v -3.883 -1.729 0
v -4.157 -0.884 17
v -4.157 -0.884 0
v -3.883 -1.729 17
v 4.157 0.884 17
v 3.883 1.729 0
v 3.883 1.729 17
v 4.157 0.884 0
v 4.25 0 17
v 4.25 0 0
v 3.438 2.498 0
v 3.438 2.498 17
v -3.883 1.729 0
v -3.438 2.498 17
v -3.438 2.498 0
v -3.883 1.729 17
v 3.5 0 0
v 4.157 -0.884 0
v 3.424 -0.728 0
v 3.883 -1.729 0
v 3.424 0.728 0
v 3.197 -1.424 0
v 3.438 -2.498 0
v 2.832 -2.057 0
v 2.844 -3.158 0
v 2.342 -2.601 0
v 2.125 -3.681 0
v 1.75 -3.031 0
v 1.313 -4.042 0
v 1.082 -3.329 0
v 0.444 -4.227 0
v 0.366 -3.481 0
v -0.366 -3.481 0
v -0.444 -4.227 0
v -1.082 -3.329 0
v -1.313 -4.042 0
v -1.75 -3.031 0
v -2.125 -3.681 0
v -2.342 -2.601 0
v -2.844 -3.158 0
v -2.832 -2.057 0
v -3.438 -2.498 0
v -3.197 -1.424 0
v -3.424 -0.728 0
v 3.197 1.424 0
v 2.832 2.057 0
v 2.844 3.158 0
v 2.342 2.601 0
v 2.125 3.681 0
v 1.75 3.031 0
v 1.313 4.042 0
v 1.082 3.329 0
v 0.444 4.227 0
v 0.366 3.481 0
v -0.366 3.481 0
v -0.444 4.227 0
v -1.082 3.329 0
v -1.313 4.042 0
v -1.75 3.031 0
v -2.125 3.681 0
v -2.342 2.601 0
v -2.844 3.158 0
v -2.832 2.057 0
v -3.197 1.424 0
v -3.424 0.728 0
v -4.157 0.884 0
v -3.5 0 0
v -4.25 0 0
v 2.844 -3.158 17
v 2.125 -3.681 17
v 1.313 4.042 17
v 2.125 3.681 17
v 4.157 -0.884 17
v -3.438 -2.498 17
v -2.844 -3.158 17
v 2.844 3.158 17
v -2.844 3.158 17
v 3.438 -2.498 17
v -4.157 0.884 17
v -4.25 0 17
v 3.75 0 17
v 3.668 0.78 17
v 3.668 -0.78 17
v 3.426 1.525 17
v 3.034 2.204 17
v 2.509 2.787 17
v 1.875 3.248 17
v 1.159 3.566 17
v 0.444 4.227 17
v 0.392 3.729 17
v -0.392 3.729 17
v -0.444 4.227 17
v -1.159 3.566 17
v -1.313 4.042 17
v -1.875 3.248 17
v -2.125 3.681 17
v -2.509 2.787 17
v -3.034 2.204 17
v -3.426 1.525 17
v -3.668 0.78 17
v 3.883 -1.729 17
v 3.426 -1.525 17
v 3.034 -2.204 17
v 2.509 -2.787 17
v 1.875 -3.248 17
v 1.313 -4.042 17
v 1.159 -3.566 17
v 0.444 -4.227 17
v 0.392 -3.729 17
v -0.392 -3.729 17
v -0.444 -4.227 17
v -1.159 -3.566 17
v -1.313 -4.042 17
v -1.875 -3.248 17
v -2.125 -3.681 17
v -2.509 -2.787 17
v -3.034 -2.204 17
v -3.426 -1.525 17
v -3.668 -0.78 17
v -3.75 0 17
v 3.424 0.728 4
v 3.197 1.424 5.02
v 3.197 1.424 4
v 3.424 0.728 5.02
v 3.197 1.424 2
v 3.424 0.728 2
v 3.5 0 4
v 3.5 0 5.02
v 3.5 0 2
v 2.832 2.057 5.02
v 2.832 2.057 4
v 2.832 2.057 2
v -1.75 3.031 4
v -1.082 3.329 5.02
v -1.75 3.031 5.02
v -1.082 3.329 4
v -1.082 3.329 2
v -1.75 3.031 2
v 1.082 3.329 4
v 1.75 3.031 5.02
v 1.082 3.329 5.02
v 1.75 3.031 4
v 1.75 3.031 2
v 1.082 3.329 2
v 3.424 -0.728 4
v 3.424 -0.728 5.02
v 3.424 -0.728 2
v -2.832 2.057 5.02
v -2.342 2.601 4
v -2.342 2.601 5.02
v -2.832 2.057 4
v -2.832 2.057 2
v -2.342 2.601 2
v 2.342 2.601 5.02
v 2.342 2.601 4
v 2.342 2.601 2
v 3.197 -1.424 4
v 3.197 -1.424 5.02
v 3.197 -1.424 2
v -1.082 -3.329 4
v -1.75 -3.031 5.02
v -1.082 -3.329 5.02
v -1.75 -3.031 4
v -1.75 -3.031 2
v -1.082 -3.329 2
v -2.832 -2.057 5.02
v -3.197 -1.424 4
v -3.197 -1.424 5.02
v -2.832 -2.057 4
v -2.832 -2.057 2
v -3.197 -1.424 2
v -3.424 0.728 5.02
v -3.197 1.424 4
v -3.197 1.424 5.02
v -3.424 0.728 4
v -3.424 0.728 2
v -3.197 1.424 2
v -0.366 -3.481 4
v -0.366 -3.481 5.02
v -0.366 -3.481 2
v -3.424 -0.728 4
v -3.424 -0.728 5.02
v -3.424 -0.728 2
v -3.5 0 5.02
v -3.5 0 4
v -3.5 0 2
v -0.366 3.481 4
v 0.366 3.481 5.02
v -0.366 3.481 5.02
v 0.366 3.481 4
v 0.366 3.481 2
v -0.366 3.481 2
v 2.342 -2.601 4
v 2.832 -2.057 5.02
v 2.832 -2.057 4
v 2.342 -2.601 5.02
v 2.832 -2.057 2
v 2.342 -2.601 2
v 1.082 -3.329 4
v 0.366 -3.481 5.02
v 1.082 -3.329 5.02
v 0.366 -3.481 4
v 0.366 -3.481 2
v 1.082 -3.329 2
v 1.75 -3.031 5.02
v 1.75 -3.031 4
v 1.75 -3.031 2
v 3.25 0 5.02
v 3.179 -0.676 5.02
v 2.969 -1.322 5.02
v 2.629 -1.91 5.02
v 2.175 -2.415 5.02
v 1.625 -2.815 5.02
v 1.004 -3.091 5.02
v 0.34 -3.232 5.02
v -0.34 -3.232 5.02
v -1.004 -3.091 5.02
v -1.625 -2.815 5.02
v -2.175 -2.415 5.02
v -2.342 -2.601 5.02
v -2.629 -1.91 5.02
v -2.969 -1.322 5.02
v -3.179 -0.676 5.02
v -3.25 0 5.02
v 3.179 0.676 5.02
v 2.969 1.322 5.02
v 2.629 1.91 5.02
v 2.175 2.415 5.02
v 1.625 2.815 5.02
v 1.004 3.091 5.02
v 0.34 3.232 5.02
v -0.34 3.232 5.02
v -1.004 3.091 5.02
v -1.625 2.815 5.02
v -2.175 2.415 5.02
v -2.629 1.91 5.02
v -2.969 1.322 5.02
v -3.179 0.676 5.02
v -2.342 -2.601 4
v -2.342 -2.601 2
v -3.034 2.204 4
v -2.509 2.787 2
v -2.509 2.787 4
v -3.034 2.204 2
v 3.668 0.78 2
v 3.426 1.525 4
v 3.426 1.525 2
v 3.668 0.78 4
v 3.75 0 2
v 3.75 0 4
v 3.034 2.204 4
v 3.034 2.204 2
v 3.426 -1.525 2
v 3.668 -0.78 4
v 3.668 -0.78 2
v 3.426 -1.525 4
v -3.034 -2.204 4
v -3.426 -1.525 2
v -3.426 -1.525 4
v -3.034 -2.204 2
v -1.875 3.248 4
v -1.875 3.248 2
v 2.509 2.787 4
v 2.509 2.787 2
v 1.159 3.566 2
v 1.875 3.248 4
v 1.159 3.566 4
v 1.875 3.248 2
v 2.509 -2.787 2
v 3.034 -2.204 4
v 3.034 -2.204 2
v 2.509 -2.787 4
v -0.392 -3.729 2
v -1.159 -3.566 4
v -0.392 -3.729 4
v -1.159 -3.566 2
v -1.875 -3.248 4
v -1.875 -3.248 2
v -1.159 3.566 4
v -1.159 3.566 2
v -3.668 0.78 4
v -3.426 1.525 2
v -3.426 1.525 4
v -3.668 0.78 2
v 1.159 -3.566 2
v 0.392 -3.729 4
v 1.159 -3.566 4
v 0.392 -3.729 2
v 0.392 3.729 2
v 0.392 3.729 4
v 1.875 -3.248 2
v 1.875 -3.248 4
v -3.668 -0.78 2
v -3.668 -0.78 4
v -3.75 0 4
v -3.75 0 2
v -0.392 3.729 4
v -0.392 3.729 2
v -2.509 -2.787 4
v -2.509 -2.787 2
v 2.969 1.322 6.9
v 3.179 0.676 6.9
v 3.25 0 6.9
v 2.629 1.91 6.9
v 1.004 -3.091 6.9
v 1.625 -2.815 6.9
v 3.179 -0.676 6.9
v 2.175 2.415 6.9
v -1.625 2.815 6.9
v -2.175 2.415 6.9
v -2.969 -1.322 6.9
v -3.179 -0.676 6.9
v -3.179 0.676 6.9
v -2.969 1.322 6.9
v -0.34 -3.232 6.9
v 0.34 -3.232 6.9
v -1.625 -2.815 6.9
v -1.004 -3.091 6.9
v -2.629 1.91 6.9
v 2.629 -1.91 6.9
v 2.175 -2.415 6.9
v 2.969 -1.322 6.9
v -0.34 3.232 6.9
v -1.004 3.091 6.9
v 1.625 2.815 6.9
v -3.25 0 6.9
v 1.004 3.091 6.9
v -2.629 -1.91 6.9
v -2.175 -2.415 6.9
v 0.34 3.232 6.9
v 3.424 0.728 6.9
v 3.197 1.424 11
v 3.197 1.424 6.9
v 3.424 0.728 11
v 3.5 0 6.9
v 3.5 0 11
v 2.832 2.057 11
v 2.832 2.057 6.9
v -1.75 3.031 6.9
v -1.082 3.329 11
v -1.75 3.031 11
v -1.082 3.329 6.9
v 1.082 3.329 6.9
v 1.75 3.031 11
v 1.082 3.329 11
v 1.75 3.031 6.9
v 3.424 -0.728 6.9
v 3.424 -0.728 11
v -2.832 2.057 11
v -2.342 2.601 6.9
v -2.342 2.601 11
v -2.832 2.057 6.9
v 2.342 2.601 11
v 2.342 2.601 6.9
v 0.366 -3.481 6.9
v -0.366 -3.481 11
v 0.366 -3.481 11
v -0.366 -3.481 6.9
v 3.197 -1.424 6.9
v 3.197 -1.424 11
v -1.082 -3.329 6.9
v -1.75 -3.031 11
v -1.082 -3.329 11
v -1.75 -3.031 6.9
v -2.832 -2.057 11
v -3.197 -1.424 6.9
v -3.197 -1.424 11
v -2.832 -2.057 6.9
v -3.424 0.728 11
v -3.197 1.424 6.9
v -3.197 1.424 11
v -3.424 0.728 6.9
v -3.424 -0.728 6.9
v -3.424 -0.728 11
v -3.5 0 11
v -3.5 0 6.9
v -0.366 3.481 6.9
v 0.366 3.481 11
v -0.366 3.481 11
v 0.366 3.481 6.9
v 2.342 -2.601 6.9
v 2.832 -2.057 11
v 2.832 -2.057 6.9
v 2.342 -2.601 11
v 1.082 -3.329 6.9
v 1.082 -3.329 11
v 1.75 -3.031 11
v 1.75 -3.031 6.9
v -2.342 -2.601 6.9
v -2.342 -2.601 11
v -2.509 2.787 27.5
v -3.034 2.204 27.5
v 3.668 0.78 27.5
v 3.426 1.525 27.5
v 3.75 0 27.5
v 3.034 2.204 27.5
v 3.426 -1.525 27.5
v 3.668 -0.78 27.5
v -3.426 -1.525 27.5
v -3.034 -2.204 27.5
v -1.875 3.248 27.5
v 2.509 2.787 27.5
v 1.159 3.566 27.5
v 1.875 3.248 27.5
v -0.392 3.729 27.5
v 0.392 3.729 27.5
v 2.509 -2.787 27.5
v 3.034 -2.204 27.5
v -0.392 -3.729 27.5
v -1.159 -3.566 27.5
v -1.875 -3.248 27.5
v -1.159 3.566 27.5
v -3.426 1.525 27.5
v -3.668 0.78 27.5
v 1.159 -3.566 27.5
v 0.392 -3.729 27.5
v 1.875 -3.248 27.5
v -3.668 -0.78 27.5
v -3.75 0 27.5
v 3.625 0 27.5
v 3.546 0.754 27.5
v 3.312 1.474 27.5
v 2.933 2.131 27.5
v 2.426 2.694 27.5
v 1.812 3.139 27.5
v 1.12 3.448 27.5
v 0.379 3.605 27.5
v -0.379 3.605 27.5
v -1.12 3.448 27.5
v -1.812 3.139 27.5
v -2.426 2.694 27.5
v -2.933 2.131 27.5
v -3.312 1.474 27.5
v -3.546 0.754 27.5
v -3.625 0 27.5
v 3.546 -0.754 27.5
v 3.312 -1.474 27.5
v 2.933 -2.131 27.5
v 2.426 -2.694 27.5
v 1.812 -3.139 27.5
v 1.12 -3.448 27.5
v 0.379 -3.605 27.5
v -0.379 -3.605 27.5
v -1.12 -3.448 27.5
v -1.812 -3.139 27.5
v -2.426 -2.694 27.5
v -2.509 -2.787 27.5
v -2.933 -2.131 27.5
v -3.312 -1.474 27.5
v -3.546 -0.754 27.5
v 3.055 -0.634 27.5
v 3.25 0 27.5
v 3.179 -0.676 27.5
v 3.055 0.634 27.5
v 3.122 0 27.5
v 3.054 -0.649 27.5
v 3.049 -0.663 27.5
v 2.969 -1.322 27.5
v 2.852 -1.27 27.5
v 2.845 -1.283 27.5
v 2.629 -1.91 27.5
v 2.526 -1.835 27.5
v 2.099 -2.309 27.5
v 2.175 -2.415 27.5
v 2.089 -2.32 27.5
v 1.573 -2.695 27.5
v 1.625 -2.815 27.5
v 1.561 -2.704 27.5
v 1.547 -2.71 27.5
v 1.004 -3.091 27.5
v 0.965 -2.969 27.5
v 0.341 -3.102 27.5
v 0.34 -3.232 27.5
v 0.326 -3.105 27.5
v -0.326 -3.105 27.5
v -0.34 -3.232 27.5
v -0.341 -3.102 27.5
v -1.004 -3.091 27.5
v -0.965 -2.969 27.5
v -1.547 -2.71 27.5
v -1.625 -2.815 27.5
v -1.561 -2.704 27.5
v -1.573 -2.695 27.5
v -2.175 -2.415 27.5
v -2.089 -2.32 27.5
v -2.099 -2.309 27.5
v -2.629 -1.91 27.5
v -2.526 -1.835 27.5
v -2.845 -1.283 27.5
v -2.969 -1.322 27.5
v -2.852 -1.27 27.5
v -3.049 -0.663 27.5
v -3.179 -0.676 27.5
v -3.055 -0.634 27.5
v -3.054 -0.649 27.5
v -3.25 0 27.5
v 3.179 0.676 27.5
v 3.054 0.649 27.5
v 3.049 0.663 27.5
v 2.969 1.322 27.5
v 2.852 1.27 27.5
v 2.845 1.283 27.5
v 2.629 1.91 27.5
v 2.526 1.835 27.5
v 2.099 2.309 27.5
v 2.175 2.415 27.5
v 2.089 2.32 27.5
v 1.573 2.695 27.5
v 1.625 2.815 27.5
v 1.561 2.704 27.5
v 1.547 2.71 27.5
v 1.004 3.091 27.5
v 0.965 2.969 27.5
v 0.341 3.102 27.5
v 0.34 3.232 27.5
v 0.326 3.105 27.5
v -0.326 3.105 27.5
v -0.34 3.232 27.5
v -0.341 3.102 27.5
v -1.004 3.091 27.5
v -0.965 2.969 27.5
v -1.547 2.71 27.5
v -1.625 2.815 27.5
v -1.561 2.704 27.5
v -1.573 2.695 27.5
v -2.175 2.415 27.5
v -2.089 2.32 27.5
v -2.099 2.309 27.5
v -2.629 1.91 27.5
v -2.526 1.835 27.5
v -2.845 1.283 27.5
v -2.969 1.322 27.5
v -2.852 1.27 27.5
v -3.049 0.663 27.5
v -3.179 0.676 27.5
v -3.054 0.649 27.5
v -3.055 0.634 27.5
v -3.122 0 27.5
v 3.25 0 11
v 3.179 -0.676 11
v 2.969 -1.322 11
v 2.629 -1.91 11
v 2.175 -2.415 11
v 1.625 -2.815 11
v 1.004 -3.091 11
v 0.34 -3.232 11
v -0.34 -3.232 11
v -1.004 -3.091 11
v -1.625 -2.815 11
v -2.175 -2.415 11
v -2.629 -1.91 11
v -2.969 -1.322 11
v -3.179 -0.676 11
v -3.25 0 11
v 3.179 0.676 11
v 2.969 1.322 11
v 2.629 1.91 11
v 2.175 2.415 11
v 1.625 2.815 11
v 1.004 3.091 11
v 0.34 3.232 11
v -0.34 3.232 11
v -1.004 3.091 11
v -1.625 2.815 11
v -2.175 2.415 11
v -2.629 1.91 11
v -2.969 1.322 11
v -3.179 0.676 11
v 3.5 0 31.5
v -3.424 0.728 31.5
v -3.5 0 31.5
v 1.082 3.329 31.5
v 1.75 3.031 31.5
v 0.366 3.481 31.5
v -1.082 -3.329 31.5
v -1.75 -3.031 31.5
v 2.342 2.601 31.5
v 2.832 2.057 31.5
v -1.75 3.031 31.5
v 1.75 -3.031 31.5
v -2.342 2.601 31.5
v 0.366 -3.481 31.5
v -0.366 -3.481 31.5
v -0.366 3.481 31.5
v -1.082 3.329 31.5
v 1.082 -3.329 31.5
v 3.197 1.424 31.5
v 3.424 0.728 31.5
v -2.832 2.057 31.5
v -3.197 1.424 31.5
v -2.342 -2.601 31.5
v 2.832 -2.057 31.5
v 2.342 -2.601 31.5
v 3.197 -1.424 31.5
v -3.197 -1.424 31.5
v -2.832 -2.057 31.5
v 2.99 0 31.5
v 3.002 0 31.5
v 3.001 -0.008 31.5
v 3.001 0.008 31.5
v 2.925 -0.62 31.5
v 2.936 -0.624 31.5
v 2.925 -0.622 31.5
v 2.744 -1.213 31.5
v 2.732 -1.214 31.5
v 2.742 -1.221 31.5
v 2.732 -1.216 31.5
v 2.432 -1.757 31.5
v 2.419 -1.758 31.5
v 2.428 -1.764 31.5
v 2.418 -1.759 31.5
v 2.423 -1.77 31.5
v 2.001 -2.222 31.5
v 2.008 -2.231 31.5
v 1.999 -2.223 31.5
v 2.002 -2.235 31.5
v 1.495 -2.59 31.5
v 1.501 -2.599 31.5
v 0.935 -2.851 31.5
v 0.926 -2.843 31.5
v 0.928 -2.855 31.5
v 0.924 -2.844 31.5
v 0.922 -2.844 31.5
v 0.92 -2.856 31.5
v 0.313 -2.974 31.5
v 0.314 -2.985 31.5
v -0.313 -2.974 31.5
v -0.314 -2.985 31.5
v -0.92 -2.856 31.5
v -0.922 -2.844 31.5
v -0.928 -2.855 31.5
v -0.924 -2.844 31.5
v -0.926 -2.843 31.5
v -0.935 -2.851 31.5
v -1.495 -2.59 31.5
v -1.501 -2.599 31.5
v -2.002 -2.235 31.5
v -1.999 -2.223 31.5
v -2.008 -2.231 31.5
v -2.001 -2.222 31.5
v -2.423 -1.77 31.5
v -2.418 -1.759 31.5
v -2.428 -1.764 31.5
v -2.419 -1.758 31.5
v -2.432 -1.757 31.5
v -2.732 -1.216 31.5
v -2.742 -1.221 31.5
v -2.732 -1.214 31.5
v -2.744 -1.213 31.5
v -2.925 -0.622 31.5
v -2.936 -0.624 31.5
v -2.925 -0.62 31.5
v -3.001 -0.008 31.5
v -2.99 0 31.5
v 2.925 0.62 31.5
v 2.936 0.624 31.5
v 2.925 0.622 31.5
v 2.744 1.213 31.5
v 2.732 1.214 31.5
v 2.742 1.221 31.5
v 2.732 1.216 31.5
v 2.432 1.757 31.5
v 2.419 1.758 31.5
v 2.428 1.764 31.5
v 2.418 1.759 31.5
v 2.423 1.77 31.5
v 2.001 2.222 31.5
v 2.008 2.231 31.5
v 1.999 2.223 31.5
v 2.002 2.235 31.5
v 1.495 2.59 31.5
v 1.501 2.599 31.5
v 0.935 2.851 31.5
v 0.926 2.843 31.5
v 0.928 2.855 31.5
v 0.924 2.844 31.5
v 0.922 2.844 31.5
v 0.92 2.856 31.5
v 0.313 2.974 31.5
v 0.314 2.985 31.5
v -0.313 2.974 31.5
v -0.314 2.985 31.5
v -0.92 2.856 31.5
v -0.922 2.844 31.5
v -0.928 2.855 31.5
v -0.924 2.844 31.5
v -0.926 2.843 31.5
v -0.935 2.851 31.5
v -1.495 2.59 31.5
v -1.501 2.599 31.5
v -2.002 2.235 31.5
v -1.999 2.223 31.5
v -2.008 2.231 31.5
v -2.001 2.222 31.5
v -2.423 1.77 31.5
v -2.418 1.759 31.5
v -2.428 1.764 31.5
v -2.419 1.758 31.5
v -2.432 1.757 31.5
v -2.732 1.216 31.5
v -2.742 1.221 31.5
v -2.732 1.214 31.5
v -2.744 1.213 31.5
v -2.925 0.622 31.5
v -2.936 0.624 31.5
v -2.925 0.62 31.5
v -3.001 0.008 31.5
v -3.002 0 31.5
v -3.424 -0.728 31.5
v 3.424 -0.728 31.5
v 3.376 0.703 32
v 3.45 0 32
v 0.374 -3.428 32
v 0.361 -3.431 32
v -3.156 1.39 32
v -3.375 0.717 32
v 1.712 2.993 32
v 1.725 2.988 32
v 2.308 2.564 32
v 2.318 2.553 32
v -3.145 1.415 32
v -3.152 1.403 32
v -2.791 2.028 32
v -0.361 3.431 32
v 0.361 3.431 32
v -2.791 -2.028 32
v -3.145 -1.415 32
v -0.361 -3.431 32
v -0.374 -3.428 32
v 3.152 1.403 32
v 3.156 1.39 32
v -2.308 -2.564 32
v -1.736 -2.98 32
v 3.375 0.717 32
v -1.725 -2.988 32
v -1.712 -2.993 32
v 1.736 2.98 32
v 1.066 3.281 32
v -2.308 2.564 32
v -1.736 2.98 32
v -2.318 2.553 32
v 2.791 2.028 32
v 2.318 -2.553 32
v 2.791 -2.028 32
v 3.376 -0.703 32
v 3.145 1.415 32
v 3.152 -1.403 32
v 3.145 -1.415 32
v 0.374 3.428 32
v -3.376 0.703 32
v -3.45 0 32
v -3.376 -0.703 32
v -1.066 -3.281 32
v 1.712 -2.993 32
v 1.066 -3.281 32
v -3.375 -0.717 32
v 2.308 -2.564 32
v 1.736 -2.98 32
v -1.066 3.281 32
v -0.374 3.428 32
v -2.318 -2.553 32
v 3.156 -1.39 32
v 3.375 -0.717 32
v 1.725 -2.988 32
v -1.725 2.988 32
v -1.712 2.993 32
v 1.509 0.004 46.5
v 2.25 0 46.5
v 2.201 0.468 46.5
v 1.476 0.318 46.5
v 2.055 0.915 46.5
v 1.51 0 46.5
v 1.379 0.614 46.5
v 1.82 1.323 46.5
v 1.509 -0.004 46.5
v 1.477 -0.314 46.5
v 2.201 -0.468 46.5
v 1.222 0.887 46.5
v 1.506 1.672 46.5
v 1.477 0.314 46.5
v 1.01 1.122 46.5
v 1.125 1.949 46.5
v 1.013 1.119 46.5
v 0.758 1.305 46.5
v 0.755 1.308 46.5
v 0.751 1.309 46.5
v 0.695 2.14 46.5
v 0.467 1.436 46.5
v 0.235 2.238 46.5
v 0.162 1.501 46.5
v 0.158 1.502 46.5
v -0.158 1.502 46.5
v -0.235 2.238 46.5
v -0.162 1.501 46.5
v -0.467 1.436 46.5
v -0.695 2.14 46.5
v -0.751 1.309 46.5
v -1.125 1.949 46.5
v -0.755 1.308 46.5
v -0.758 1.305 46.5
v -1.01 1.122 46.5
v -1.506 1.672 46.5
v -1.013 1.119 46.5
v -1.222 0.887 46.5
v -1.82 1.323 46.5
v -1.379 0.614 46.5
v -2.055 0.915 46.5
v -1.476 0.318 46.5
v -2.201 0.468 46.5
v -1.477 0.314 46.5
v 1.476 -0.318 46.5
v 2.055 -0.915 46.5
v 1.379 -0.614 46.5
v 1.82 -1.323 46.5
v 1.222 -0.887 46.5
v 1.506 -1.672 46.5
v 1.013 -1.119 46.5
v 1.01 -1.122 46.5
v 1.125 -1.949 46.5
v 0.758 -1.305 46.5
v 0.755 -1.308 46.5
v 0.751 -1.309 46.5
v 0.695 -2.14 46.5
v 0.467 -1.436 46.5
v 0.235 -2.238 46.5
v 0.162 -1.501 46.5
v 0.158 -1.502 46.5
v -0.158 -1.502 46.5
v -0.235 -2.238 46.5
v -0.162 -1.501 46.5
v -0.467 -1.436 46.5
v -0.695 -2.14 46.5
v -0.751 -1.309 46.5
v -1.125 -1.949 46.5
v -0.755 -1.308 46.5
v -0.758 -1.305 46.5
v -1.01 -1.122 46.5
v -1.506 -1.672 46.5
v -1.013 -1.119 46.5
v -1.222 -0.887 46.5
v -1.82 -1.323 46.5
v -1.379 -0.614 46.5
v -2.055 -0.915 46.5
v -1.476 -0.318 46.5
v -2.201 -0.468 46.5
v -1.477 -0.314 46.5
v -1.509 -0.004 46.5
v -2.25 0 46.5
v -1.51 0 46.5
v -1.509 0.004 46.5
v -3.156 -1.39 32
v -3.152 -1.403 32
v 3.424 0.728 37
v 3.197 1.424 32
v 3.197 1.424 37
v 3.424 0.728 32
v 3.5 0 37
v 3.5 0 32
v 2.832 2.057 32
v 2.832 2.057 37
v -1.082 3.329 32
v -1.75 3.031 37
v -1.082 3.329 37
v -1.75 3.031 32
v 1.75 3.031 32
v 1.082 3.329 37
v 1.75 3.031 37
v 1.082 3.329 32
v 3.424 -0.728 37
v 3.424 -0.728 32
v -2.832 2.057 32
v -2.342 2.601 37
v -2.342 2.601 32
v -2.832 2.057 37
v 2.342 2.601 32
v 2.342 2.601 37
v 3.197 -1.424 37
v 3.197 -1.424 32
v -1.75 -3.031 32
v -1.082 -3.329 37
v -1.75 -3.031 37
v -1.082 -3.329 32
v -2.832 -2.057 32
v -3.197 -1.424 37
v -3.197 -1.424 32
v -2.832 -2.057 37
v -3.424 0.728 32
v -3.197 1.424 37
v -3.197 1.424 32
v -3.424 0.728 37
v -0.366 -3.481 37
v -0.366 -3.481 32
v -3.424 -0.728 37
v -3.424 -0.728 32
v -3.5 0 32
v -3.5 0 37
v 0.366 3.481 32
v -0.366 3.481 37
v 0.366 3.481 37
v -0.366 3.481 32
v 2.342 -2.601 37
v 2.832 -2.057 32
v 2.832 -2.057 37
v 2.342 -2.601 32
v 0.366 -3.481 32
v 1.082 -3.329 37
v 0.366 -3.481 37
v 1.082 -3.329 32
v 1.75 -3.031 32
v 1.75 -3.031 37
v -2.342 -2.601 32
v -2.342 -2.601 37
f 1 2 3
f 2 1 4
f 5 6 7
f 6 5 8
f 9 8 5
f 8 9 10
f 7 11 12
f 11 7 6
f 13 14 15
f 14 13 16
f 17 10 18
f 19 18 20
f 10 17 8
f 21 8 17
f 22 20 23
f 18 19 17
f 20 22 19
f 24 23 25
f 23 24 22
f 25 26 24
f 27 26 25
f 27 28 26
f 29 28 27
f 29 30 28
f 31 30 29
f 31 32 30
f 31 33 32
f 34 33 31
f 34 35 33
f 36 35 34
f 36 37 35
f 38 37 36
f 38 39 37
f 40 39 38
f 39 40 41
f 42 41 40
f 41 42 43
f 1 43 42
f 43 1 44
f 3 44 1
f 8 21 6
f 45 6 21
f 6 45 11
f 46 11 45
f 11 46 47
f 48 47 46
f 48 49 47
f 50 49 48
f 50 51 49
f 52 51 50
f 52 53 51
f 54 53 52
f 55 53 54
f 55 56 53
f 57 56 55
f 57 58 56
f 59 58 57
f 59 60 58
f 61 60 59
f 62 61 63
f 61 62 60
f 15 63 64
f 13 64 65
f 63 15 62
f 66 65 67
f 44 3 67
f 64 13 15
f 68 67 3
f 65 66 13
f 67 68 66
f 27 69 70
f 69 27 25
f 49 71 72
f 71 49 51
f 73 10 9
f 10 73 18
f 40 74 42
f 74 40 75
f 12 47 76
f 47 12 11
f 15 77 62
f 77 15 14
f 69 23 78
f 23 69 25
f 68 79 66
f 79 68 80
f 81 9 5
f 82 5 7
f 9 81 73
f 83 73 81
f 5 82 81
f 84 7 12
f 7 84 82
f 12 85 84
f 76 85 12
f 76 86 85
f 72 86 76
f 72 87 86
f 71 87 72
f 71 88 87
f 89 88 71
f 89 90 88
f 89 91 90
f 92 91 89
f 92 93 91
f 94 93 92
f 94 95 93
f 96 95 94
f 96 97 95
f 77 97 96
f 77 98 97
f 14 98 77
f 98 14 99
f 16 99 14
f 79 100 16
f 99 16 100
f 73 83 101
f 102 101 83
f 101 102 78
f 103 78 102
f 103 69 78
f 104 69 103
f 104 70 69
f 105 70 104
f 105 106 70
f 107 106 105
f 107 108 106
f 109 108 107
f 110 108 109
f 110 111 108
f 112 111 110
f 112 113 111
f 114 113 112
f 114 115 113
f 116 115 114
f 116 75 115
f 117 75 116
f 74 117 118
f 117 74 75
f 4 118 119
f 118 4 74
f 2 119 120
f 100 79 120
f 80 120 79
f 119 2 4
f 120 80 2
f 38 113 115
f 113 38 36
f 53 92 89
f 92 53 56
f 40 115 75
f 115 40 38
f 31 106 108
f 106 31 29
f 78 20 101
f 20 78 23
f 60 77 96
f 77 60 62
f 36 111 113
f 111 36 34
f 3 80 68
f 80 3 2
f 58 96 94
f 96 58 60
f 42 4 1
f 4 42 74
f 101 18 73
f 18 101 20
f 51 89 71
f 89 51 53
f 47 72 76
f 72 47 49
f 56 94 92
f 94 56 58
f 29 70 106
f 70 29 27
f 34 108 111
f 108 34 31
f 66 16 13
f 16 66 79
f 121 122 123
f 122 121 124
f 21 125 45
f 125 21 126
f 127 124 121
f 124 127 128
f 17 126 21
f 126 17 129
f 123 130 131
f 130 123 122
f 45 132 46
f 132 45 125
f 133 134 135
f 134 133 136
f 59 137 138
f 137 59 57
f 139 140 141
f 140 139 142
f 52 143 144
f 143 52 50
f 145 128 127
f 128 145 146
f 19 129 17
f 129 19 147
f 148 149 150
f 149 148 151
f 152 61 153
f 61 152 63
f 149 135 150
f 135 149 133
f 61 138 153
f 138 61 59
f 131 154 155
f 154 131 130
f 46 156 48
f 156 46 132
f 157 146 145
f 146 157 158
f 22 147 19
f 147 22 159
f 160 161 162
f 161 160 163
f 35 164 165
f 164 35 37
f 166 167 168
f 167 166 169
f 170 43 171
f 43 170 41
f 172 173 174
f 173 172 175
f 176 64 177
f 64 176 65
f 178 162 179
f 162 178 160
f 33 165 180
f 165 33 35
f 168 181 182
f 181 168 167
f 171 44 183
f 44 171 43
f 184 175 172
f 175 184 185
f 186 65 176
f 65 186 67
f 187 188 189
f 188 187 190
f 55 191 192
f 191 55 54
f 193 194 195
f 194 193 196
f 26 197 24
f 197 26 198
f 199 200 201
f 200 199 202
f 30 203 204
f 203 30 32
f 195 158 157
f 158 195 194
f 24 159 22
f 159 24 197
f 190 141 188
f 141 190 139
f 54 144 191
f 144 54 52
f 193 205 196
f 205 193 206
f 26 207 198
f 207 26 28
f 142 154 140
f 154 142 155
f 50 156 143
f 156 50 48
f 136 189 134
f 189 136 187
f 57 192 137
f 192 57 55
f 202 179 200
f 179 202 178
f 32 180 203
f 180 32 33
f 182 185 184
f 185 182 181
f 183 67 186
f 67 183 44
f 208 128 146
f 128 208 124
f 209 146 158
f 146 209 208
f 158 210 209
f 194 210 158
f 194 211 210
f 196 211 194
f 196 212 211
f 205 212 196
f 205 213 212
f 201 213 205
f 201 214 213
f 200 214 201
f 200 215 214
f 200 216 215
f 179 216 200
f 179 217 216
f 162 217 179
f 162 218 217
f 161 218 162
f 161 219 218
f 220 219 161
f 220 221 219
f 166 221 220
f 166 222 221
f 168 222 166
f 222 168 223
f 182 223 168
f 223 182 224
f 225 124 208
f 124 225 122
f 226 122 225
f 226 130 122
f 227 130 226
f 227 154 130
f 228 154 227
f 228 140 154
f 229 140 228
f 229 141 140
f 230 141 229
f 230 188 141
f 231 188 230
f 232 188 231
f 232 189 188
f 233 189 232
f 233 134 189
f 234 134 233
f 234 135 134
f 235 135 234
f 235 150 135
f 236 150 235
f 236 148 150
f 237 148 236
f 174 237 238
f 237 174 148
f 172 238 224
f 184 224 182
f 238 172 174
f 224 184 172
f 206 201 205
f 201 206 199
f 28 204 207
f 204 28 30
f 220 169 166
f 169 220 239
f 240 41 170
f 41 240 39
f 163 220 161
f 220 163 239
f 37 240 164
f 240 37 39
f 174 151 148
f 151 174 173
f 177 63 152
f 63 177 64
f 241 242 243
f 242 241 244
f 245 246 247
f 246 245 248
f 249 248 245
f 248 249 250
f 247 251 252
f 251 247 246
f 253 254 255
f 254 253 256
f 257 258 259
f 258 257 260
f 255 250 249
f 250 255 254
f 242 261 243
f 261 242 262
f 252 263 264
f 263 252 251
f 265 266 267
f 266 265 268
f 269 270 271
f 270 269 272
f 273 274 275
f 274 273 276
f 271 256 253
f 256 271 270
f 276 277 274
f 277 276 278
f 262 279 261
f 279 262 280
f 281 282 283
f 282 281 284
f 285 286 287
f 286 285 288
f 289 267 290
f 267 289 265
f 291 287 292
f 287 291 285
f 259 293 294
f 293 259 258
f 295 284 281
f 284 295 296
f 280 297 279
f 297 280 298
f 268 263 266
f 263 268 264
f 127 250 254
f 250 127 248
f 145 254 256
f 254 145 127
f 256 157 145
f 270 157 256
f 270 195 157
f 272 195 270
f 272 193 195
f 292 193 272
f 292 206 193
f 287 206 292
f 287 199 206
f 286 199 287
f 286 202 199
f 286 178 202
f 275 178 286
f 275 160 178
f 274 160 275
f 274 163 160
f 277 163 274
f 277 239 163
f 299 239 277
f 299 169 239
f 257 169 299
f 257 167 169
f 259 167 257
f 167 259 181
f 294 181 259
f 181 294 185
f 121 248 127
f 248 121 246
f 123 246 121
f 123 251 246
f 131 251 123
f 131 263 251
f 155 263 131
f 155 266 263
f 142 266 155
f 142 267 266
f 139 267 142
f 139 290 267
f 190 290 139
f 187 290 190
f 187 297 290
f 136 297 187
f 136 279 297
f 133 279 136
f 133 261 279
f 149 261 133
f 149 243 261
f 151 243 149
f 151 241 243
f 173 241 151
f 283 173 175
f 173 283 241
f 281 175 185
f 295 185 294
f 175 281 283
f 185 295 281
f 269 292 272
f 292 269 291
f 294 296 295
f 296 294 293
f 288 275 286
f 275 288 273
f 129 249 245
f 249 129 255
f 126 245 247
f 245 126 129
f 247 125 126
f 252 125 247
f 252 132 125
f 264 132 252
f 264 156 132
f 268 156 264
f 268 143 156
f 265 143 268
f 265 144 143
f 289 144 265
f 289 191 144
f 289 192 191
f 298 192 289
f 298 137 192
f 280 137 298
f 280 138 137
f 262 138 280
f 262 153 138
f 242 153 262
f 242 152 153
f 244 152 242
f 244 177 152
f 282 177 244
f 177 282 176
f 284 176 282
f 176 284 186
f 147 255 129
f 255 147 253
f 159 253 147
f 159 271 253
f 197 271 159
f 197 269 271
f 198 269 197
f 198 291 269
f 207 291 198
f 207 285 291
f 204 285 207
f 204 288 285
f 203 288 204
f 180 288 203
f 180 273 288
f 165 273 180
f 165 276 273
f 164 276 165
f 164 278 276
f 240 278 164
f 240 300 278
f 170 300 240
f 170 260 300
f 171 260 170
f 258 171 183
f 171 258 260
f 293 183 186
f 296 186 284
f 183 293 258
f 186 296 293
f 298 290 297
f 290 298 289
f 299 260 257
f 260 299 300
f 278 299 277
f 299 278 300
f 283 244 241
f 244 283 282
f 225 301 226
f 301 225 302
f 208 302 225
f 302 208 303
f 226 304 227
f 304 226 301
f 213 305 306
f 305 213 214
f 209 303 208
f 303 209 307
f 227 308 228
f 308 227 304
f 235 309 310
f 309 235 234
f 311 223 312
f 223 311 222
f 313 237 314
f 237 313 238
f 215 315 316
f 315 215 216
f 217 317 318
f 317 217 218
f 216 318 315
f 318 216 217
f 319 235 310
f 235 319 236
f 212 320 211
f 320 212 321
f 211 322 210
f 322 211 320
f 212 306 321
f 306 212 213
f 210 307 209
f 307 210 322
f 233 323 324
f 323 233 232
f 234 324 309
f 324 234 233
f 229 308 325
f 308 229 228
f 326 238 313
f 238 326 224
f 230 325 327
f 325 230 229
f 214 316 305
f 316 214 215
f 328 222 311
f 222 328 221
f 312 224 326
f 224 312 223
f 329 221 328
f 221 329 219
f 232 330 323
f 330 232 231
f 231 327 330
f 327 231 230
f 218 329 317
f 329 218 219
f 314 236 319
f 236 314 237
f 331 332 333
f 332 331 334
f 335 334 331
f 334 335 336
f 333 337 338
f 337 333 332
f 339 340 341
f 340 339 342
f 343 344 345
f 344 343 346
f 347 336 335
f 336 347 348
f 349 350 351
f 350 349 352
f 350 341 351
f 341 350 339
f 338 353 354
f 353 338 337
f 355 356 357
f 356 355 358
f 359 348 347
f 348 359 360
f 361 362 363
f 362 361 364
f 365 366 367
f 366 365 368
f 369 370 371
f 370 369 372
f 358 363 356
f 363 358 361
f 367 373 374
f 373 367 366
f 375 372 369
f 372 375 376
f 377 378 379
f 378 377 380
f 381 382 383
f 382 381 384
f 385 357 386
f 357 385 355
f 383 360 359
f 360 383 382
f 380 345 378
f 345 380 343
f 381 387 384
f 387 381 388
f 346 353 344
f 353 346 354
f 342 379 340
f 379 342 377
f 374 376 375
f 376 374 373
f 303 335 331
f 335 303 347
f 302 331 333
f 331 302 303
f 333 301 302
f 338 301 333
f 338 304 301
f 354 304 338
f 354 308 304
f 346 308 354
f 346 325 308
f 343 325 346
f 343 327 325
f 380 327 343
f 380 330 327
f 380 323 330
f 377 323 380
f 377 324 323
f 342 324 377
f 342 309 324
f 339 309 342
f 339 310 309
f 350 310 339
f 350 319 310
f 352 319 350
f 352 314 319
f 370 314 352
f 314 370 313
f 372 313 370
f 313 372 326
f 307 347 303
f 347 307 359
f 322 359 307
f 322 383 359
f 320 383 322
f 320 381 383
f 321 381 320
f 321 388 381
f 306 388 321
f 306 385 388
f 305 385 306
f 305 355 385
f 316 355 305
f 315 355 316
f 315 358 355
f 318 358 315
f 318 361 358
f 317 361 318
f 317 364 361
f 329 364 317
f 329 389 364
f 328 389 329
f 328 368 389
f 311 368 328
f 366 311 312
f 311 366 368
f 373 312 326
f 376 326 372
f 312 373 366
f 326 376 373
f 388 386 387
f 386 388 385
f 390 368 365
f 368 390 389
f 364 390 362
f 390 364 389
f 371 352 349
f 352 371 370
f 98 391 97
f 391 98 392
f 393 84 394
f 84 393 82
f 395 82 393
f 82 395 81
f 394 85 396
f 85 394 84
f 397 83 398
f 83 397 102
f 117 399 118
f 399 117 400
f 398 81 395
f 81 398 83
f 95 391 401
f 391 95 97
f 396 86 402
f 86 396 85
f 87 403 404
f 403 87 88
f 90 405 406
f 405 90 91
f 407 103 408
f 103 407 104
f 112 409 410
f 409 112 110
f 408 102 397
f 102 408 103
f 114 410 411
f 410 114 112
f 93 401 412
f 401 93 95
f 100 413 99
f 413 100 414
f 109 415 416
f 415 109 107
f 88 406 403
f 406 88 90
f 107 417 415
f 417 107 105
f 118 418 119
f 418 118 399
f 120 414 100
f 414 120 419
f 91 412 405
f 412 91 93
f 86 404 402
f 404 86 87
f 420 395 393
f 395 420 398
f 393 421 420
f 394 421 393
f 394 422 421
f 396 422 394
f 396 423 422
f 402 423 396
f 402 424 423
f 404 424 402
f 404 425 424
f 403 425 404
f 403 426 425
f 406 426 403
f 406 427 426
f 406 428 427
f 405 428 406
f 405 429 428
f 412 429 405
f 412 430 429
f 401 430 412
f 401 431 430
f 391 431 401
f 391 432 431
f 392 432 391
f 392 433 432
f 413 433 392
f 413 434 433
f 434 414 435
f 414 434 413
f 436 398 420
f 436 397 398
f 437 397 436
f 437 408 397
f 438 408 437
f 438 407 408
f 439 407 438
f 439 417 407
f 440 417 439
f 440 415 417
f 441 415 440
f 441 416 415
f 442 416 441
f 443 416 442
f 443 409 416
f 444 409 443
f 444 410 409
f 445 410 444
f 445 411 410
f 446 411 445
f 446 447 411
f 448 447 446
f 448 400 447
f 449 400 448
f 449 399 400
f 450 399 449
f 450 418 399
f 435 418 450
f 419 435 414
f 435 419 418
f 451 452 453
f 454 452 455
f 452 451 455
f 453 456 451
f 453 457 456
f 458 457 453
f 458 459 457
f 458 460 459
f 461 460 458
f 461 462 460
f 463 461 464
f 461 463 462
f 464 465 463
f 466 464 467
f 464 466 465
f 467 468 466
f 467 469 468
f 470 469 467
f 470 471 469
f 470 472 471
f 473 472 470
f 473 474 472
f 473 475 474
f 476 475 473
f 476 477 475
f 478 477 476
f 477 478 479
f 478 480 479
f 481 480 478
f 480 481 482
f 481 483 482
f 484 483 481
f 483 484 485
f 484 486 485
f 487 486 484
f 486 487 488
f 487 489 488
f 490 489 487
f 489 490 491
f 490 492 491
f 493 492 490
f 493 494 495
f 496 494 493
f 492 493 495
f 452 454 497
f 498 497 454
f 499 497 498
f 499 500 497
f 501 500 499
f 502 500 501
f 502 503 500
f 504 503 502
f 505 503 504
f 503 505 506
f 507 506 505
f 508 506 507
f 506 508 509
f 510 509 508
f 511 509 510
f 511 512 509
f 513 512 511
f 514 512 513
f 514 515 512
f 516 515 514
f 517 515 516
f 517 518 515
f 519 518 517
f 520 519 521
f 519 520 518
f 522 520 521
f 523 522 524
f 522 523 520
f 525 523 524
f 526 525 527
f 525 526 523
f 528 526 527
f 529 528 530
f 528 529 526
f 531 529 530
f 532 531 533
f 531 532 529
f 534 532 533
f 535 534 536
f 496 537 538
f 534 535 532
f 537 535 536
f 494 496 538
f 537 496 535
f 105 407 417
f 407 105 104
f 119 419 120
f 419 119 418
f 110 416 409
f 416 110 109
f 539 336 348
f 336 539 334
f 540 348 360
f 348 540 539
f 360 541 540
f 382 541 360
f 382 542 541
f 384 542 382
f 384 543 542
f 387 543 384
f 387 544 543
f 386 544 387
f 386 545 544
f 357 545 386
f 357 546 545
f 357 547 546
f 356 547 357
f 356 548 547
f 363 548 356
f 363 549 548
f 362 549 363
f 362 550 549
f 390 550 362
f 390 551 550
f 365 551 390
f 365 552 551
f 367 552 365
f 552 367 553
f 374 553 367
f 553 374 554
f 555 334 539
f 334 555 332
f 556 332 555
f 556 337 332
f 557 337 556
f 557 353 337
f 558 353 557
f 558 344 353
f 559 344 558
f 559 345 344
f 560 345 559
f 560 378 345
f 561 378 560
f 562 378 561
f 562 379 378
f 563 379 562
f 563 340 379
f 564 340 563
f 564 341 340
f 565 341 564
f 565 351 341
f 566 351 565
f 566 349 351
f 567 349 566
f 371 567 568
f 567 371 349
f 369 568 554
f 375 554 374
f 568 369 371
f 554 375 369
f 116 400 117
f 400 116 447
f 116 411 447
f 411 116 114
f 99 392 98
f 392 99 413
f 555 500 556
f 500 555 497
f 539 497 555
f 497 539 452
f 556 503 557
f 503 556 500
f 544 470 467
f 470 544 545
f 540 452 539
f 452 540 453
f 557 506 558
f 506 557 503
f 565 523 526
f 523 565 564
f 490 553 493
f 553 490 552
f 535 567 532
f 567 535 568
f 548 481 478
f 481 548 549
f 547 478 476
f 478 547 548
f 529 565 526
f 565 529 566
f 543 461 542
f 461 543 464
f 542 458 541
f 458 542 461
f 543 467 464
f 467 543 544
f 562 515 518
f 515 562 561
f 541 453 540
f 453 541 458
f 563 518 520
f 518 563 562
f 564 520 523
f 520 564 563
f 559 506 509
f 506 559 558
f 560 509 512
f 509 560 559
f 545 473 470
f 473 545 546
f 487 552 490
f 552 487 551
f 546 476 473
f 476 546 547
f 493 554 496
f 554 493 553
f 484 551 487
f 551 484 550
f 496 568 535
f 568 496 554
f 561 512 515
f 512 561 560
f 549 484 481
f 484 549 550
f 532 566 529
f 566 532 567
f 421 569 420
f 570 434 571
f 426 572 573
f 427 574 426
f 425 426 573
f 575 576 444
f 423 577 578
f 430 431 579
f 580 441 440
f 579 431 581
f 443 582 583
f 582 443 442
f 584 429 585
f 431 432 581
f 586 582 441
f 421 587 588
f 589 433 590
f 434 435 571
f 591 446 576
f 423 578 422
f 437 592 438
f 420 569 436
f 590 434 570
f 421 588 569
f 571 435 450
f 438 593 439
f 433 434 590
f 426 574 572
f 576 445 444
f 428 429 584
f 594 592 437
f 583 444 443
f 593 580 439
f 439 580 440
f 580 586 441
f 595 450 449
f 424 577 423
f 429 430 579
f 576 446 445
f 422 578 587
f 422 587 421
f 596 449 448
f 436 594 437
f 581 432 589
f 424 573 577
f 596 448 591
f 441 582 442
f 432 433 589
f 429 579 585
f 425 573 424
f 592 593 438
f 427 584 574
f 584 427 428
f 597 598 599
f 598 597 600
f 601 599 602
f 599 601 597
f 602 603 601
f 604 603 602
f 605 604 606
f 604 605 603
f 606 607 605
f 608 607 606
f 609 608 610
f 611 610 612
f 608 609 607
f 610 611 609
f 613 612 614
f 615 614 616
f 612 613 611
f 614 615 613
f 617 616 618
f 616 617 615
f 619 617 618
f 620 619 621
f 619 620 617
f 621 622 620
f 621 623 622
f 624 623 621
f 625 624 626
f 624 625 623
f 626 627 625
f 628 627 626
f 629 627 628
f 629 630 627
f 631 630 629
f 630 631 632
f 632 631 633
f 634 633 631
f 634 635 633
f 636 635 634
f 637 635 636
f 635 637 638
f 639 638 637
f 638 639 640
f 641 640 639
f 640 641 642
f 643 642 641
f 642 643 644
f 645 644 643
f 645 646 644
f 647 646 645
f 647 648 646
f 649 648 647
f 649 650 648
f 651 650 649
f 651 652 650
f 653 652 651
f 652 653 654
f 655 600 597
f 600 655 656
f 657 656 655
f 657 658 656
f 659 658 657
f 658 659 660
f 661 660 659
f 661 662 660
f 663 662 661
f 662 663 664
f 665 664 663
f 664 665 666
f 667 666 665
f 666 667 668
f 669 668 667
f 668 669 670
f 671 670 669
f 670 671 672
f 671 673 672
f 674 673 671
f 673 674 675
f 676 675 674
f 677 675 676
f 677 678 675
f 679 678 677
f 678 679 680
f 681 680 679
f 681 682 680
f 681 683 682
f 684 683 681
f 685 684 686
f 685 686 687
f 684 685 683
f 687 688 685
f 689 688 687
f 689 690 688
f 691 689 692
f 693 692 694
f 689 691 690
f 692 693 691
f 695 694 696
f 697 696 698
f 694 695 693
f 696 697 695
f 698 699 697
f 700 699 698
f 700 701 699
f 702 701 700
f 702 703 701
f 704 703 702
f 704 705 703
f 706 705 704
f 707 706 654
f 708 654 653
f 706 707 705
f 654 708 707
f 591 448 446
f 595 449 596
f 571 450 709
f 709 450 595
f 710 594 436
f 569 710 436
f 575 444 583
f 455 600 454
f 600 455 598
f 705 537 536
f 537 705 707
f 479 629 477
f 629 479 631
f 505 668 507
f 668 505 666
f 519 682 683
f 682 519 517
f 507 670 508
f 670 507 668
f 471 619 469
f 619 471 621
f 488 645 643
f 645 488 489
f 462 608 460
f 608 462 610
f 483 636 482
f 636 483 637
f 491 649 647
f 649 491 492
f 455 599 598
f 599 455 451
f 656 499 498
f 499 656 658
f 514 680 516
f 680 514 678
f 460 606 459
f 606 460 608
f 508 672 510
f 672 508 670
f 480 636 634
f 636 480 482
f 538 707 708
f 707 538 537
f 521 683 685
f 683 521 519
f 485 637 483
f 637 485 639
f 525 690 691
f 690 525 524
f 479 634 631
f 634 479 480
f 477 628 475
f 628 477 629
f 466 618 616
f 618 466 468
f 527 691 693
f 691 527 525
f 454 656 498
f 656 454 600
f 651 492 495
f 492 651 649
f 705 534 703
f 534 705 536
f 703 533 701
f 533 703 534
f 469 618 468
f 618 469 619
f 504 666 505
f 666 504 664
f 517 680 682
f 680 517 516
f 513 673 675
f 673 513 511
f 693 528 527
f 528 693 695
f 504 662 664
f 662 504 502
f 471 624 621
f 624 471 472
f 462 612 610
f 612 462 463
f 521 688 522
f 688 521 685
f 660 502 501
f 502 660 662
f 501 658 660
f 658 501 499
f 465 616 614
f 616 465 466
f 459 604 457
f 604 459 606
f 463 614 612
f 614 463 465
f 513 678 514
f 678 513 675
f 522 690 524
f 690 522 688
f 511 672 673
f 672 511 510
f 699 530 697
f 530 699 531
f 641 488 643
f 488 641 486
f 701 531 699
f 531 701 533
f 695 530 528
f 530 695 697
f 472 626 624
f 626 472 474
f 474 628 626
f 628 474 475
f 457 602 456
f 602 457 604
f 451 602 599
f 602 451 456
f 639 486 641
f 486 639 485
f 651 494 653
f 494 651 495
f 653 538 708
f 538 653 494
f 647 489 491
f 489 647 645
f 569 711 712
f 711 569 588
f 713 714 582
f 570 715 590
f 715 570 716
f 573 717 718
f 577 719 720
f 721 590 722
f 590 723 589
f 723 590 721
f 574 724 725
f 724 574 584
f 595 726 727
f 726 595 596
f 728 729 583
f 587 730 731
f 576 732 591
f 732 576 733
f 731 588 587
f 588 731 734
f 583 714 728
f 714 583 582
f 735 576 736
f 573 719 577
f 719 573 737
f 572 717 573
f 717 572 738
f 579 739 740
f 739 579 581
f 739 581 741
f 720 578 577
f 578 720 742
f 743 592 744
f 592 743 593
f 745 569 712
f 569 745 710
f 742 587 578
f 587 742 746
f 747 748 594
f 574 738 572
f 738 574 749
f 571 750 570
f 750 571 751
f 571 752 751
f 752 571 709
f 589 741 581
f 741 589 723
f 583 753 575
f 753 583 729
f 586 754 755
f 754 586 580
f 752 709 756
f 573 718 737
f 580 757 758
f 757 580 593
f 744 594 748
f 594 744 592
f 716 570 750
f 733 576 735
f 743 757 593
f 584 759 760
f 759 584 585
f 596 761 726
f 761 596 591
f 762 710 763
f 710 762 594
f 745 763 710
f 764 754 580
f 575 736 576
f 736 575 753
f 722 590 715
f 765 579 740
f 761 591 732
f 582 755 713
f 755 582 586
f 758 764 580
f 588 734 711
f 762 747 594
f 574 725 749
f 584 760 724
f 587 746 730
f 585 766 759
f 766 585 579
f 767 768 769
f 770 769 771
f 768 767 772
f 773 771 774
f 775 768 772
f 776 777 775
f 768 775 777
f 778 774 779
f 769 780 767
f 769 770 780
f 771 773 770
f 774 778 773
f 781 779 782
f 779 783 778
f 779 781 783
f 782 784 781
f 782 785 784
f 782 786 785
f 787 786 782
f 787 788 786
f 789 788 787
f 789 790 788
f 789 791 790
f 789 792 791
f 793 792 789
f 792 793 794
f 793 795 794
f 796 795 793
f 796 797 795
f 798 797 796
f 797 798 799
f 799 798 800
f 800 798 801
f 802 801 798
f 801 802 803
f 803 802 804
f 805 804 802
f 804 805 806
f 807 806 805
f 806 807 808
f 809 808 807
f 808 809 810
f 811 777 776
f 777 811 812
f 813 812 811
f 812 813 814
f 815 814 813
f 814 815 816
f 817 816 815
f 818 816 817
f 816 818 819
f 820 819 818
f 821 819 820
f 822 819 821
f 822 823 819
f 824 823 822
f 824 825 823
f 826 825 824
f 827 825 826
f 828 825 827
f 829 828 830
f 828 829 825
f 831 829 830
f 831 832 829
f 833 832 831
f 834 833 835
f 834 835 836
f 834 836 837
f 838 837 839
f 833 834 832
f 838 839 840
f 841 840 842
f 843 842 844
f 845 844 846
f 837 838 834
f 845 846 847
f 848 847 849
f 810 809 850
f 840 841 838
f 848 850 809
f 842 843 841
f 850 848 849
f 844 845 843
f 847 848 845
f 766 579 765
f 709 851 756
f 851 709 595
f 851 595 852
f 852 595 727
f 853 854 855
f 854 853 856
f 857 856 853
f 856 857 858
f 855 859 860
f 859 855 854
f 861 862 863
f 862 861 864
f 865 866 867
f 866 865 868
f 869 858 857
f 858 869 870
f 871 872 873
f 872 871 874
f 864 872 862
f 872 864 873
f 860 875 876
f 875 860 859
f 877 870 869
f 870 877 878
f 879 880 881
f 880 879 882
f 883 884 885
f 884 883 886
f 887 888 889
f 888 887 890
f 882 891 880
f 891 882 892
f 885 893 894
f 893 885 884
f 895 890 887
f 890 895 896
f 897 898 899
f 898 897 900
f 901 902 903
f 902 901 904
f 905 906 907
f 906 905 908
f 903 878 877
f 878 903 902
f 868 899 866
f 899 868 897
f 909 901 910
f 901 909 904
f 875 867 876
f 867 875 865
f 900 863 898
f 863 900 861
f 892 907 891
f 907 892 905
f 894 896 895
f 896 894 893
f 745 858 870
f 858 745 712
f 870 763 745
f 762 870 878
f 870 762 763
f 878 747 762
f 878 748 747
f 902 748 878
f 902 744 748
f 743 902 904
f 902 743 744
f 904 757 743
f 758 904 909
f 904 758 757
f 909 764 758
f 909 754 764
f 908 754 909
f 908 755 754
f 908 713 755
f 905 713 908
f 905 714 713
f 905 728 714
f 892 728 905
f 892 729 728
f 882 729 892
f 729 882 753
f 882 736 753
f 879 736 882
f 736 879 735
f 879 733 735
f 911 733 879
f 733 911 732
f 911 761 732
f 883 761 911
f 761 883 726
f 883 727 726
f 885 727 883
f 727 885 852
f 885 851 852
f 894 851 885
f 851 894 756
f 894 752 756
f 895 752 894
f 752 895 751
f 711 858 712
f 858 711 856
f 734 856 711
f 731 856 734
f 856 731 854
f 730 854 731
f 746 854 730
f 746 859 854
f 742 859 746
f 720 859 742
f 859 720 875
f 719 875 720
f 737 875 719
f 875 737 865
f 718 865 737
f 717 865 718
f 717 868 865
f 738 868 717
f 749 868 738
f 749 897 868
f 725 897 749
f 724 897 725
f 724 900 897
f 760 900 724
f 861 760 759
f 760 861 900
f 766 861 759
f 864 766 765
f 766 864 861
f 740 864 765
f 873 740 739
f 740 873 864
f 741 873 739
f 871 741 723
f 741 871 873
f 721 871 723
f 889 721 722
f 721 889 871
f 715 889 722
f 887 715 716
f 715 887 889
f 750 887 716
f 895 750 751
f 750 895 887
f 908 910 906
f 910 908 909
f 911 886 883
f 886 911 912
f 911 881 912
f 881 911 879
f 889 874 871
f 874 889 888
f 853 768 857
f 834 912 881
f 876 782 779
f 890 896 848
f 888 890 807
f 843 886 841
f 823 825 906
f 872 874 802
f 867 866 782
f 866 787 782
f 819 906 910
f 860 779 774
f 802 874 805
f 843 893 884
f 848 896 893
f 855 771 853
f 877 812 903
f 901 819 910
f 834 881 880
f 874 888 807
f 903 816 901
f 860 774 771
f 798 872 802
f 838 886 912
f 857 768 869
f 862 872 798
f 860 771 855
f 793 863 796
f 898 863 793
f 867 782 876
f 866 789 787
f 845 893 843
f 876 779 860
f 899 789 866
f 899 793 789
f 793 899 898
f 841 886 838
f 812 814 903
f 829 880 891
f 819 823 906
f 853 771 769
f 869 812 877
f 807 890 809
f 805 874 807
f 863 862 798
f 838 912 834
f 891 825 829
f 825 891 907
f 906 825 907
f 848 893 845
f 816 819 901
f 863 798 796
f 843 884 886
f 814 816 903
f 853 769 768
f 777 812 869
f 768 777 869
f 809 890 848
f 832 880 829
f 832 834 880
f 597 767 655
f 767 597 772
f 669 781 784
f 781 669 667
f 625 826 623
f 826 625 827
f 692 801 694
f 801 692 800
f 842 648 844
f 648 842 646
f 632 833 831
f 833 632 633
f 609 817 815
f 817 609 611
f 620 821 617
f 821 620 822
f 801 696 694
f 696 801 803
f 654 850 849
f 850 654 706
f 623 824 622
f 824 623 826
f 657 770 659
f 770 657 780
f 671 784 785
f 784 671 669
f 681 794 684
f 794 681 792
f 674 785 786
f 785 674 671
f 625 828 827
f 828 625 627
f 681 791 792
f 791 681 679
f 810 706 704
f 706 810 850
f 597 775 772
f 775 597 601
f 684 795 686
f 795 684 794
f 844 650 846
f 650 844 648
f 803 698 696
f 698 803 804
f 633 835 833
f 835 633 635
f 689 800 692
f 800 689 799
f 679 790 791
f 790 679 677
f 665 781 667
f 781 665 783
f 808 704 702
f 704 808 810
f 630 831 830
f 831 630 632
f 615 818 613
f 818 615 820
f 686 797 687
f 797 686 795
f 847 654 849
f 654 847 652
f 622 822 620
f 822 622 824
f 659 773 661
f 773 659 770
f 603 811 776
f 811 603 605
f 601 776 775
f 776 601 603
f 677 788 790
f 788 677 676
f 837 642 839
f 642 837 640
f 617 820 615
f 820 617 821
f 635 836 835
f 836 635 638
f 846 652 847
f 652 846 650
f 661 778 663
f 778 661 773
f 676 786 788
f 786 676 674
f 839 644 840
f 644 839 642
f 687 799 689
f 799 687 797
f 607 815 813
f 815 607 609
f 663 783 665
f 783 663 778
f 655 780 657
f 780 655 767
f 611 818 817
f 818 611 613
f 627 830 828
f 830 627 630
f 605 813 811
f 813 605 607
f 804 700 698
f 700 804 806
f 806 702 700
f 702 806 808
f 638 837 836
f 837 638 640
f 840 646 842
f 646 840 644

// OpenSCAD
p1000_model_eppendorf();

module p1000_model_eppendorf(){
//color("lightblue")
//translate([0,0,-190])cylinder(r=2/2,h=180,$fn=30);
rotate([0,0,0]){
difference(){
union(){
color("lightblue")
cylinder(r=8.5/2,h=17,$fn=30);
//translate([0,0,3])color("black")cylinder(r=8.6/2,h=1,$fn=30);
}
translate([0,0,-0.1])cylinder(r=(8.5-1.5)/2,h=5.12,$fn=30);
translate([0,0,2])cylinder(r=(8.5-1)/2,h=2,$fn=30);
translate([0,0,5])cylinder(r=(8.5-2)/2,h=2,$fn=30);
translate([0,0,6.9])cylinder(r=(8.5-1.5)/2,h=4.11+6.6,$fn=30);
}
color("lightblue")translate([0,0,11])
difference(){
cylinder(r1=7.5/2,r2=7.5/2,h=16.5,$fn=30);
translate([0,0,-0.1])cylinder(r1=(7.5-1)/2,r2=(7.5-1)/2,h=16.85+2,$fn=30);
}
color("lightblue")translate([0,0,11+16.5])
difference(){
cylinder(r1=7.25/2,r2=7/2,h=4,$fn=30);
translate([0,0,-0.1])cylinder(r1=(7.25-1)/2,r2=(7-1)/2,h=4.15,$fn=30);
}
color("lightblue")translate([0,0,11+16.5+4])
difference(){
union(){
cylinder(r1=7/2,r2=4/2,h=15,$fn=30);
translate([0,0,15-2-12.5])cylinder(r2=7/2,r1=7/2,h=5,$fn=30);
translate([0,0,15-2-7.5])difference(){
cylinder(r2=4.5/2,r1=7/2,h=9.5,$fn=30);
//need to put this back 
//translate([0,0,7.5-3])cylinder(r=7/2,h=0.6,$fn=30);
}
}
translate([0,0,-0.1])cylinder(r1=(7-1)/2,r2=(4-1)/2,h=15+.2,$fn=30);
}
/*
//this is for show
color("")translate([0,0,11+16.5+4])
difference(){
union(){
translate([0,0,15-2-7.5])difference(){
cylinder(r2=4.5/2,r1=7/2,h=9.5,$fn=30);
translate([0,0,7.5-3])cylinder(r=7/2,h=0.6,$fn=30);
}
}
translate([0,0,-0.1])cylinder(r1=(7-1)/2,r2=(4-1)/2,h=15+.2,$fn=30);
}
//end for show
*/
//translate([0,0,11+16.5+4+15-10])cylinder(r1=7/2,r2=6/2,h=8,$fn=30);
}
}
